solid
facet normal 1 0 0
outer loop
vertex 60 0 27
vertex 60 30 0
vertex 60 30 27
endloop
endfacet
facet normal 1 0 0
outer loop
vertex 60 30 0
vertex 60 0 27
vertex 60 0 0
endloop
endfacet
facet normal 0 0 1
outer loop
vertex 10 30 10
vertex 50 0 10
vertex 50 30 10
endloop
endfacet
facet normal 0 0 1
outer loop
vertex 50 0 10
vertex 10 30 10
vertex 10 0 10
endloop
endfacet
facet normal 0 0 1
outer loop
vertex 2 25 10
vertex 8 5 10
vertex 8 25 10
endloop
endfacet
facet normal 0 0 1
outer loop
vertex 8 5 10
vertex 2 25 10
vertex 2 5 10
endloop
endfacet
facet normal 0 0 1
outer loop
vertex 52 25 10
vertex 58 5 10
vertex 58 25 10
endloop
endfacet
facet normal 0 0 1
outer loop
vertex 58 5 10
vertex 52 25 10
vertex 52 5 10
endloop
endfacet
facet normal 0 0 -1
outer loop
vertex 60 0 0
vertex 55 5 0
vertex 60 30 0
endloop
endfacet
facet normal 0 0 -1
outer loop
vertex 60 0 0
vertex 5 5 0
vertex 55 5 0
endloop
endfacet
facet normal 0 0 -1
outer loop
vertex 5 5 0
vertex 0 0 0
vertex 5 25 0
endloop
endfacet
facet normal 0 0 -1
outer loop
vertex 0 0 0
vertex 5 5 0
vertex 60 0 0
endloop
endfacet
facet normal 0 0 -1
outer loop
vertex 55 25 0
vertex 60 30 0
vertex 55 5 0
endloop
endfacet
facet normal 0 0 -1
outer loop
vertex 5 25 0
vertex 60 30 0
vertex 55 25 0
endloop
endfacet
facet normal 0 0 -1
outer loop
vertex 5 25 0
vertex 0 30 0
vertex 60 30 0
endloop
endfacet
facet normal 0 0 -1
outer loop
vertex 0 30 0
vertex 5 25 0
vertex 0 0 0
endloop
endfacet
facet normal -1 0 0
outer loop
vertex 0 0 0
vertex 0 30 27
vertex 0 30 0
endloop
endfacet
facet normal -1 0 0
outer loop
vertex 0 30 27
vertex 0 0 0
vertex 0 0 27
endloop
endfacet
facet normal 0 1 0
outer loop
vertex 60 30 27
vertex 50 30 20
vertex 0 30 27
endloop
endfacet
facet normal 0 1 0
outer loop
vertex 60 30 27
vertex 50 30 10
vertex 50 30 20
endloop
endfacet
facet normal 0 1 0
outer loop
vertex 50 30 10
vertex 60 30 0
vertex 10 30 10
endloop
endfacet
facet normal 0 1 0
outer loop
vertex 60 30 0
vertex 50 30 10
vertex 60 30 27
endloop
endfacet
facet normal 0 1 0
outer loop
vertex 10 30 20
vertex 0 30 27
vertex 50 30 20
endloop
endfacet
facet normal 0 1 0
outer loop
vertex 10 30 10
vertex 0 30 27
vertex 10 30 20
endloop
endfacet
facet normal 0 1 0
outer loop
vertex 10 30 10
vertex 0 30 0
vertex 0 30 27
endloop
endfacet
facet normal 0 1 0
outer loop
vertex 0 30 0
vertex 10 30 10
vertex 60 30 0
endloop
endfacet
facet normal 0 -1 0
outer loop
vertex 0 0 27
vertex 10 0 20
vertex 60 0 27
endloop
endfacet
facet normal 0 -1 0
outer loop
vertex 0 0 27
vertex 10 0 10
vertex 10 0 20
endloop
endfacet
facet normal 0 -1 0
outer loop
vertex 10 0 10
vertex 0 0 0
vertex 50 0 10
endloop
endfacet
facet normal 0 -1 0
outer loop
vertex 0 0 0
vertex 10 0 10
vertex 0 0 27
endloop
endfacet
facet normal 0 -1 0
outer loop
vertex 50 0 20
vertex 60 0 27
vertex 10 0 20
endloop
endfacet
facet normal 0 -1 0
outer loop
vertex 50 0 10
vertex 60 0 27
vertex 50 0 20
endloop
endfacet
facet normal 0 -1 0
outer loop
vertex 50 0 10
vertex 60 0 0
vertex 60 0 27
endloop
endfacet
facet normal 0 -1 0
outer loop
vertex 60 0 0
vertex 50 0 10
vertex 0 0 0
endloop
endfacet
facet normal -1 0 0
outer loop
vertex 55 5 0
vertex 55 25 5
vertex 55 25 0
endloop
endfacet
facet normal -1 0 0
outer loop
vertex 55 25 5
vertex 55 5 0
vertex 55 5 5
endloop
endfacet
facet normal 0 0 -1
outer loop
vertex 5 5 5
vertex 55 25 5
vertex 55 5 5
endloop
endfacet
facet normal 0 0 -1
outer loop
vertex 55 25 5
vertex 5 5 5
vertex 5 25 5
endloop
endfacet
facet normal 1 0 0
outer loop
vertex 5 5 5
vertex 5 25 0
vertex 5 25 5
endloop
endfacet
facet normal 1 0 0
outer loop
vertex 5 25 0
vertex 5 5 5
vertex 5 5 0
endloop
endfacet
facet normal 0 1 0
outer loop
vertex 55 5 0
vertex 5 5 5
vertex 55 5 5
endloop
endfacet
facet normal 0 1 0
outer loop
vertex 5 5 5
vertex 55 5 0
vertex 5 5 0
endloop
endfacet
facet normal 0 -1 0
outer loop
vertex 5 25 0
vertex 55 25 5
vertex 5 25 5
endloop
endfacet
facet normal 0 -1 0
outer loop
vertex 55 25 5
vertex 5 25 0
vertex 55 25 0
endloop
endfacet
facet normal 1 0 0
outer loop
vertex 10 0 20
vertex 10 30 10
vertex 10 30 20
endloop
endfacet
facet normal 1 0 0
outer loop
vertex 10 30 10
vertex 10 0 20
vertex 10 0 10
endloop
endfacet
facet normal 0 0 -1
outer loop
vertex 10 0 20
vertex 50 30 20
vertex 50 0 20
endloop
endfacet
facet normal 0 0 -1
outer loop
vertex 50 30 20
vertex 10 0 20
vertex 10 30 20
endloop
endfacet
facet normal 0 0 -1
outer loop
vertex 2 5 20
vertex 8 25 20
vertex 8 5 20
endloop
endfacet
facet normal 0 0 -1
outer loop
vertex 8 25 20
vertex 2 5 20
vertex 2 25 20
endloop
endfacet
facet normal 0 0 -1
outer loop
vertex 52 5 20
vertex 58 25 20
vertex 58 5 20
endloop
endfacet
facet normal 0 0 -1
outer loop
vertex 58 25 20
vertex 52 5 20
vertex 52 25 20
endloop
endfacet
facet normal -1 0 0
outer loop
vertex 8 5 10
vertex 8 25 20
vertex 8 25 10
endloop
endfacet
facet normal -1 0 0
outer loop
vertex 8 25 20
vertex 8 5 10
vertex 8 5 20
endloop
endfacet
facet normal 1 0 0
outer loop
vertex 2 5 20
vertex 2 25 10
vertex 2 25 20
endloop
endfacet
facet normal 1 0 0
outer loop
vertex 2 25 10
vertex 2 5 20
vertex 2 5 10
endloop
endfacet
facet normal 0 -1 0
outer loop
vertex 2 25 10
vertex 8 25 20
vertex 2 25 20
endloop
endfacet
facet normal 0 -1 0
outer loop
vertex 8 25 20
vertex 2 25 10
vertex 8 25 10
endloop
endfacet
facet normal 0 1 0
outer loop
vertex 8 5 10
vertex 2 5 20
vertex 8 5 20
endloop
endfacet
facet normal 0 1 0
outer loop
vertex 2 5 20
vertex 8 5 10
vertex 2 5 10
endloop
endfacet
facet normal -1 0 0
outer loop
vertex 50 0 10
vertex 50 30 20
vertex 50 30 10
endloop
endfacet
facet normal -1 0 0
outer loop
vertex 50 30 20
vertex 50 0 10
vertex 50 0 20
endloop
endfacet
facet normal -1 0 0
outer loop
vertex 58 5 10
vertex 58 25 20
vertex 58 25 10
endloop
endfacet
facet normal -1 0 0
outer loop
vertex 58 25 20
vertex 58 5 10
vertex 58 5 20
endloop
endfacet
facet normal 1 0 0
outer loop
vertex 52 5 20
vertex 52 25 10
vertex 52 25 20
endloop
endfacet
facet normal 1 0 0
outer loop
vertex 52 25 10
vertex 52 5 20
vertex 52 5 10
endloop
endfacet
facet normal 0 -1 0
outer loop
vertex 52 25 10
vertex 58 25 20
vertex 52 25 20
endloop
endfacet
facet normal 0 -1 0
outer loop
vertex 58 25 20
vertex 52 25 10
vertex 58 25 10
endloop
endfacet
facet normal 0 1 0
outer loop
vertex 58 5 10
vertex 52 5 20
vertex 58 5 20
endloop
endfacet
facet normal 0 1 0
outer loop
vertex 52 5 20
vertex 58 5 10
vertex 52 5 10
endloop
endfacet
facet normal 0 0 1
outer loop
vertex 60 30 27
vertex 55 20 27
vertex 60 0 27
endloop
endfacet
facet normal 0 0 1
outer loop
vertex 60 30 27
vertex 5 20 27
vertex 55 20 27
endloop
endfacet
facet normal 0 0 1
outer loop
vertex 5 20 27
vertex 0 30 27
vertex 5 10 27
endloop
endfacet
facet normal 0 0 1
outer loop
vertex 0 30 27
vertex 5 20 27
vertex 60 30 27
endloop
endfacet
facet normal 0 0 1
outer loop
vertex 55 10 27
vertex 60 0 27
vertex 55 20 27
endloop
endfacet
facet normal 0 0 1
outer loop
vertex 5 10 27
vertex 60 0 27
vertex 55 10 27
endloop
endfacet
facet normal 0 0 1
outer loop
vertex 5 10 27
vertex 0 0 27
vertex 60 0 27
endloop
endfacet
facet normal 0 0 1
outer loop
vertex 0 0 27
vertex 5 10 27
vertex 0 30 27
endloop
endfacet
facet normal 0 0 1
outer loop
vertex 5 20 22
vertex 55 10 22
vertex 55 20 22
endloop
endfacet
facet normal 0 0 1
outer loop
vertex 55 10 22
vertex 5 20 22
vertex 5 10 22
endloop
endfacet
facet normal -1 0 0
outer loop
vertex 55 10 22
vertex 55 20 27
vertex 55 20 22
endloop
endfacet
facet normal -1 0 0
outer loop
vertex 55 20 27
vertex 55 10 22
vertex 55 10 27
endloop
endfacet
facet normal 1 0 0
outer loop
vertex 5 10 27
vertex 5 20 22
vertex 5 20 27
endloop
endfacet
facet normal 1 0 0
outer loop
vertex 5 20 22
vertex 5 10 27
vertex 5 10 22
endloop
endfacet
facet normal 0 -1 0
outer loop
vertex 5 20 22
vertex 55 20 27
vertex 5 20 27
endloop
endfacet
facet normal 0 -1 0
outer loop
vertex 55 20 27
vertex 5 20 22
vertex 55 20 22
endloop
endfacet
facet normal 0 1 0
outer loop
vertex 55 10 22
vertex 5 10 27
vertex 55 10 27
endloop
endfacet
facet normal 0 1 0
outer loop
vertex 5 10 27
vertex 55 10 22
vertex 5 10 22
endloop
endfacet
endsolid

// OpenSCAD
// Base Block
module base_block() {
    difference() {
        cube([60, 30, 10], center = false);
        translate([5, 5, 0])
            cube([50, 10, 5], center = false);
        translate([5, 15, 0])
            cube([50, 10, 5], center = false);
    }
}

// Side Clamp
module side_clamp() {
    difference() {
        cube([10, 30, 10], center = false);
        translate([2, 5, 0])
            cube([6, 20, 10], center = false);
    }
}

// Top Clamp
module top_clamp() {
    difference() {
        cube([60, 30, 5], center = false);
        translate([5, 10, 0])
            cube([50, 10, 5], center = false);
    }
}

// Spacer Block
module spacer_block() {
    cube([60, 30, 2], center = false);
}

// Assembly
module assembly() {
    // Layer 4: Base Block
    base_block();

    // Layer 3: Side Clamps
    translate([0, 0, 10])
        side_clamp();
    translate([50, 0, 10])
        side_clamp();

    // Layer 2: Spacer Block
    translate([0, 0, 20])
        spacer_block();

    // Layer 1: Top Clamp
    translate([0, 0, 22])
        top_clamp();
}

// Render the assembly
assembly();
